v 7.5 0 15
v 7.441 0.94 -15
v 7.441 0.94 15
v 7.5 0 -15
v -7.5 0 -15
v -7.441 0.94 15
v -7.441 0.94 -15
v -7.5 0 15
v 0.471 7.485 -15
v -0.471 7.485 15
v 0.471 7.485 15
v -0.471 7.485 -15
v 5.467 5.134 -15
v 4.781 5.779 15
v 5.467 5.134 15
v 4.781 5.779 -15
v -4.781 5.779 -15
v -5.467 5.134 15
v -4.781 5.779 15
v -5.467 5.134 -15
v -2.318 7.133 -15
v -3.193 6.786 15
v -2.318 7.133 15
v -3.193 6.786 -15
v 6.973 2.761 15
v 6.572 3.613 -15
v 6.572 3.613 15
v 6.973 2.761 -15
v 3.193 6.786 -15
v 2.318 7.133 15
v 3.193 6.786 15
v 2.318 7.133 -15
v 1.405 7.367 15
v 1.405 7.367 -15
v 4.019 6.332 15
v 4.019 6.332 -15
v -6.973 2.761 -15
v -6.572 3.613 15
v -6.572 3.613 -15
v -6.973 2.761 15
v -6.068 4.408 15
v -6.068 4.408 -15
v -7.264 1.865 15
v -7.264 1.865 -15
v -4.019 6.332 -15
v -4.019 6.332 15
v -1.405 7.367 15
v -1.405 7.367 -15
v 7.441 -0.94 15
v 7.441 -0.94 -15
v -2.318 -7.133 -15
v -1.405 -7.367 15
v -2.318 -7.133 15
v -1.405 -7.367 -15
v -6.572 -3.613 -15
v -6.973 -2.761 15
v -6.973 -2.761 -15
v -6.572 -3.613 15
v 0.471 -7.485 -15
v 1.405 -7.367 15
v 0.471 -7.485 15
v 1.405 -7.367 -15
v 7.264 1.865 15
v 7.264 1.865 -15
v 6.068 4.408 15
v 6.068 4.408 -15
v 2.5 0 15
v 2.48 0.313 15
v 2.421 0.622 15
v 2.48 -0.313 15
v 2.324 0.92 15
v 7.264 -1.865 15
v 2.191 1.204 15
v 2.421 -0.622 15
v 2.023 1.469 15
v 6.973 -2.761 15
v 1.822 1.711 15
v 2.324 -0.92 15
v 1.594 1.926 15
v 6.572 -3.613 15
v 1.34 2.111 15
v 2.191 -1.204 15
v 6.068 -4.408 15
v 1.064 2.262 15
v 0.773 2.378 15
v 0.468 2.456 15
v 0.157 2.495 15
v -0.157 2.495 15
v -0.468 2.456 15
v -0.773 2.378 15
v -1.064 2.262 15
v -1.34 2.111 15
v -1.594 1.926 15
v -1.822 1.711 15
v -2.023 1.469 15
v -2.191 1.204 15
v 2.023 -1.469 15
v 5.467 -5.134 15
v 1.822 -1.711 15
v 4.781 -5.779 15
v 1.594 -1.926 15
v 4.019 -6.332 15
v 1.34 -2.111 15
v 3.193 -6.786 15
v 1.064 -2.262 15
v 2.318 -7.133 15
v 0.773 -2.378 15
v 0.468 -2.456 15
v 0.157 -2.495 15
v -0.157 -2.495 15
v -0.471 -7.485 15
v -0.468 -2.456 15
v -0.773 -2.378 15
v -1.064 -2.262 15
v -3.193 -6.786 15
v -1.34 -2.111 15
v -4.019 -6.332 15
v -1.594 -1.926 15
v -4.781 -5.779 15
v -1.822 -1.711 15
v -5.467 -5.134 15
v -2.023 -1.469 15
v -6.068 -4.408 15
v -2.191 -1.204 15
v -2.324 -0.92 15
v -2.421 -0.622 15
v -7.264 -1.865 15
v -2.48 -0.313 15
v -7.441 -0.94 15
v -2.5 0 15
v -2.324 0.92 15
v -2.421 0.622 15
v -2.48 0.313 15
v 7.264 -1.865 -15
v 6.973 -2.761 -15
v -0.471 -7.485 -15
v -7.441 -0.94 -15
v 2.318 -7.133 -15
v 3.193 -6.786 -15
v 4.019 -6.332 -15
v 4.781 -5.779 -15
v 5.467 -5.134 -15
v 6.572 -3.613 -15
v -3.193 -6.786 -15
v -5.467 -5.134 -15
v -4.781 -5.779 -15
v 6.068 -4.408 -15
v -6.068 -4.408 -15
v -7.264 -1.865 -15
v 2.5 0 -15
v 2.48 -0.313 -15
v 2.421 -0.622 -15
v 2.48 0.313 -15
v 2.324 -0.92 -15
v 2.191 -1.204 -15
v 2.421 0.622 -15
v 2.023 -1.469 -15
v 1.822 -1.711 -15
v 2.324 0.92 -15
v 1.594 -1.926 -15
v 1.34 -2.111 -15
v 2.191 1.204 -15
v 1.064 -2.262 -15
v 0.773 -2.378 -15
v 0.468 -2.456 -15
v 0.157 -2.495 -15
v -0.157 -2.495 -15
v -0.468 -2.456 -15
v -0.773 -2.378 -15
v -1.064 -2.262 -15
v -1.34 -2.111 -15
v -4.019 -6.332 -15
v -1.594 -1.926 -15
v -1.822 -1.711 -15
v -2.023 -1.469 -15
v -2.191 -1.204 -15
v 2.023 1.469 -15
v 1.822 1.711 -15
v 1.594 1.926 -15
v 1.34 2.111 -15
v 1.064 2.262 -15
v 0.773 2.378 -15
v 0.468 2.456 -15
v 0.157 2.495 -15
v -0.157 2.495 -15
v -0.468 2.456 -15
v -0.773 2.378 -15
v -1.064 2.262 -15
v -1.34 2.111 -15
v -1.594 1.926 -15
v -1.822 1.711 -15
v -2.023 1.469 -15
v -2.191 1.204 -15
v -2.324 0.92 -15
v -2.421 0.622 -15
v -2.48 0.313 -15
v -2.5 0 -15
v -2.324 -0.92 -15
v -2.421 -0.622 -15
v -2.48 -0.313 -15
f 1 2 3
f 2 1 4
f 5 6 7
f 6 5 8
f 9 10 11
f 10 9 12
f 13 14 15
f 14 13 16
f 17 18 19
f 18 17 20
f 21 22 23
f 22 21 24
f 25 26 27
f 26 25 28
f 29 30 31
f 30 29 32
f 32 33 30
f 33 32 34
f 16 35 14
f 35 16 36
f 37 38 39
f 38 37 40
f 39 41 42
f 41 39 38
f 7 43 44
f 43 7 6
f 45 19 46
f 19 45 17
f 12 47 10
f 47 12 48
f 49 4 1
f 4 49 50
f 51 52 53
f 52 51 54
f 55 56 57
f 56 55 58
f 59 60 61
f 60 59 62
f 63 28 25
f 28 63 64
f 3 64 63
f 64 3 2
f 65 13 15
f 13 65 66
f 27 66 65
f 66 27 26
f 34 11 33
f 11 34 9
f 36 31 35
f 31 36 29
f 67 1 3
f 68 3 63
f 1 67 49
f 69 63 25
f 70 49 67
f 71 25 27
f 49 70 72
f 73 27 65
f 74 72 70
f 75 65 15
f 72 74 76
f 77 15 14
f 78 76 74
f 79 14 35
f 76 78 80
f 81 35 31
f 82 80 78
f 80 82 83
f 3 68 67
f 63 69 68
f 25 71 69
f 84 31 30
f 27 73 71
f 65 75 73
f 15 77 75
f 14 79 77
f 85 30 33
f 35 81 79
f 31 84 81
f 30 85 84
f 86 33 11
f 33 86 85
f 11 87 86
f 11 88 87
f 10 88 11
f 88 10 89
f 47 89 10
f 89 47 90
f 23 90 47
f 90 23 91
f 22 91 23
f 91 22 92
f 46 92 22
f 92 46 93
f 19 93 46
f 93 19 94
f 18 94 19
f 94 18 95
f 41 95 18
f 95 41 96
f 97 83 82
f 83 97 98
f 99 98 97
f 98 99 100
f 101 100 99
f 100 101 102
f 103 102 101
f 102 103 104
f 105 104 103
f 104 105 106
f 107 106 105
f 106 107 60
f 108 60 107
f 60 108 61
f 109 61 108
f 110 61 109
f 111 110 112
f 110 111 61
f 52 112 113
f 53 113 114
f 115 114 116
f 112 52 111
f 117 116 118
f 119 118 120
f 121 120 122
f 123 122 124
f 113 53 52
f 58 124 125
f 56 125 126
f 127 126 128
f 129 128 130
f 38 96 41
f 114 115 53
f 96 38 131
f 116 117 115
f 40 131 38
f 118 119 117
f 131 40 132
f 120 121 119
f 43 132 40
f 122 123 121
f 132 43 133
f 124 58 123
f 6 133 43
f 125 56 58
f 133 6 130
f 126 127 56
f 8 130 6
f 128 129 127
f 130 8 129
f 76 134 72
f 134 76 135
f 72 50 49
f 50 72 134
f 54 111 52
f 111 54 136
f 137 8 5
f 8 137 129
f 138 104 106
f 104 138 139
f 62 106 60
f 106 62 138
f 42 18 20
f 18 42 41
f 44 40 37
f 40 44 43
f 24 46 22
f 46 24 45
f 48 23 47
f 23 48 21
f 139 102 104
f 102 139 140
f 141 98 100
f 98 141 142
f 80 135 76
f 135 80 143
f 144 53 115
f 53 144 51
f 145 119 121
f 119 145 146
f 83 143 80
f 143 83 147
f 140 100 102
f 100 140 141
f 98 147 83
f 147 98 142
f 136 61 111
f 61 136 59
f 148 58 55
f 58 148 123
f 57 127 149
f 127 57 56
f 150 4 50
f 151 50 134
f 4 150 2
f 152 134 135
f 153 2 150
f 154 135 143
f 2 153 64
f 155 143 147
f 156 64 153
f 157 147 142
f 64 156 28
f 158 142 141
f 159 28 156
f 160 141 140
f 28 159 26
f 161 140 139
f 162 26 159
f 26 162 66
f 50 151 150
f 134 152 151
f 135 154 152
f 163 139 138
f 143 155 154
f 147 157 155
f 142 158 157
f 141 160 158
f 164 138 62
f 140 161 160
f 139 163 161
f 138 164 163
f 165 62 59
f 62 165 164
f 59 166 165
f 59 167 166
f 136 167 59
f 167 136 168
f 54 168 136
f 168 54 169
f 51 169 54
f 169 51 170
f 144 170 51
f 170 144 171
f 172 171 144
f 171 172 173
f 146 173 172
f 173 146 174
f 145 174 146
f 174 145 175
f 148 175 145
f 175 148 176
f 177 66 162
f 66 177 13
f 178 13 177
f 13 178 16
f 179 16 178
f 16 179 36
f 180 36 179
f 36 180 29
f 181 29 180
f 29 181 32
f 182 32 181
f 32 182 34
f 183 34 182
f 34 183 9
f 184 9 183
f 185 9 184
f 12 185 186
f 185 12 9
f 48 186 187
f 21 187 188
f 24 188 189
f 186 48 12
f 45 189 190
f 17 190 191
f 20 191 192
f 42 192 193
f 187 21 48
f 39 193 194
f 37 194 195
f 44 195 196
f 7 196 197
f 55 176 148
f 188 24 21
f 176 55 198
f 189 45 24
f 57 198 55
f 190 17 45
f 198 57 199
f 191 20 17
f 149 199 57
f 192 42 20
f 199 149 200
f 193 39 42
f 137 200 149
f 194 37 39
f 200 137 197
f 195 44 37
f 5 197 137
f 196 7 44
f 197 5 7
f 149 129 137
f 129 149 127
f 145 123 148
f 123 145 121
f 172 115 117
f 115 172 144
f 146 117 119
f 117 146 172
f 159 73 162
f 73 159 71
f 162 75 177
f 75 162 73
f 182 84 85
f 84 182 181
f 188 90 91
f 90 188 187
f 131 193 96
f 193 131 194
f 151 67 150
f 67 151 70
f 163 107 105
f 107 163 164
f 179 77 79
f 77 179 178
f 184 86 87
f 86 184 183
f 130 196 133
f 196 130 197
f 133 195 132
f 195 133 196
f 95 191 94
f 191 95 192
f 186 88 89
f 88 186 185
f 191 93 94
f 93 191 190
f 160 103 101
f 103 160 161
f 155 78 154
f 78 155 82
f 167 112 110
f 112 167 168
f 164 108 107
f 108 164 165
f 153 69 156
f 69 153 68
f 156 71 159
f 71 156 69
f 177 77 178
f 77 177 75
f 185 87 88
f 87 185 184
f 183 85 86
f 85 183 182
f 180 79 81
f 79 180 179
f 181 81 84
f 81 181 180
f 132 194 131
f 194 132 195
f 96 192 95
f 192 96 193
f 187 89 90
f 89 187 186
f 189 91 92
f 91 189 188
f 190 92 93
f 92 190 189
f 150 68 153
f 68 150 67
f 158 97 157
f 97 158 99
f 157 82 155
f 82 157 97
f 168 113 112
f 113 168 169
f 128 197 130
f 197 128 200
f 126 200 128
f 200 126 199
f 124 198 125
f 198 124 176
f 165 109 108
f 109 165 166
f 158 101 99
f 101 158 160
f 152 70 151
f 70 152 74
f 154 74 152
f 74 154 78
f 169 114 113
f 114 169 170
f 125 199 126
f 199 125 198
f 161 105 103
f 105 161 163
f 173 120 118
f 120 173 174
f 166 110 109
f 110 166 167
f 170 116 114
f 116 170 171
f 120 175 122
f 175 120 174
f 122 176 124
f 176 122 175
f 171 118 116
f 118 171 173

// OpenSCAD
$fn = 50;


difference() {
	union() {
		translate(v = [0, 0, -15.0000000000]) {
			cylinder(h = 30, r = 7.5000000000);
		}
	}
	union() {
		translate(v = [0, 0, -100.0000000000]) {
			cylinder(h = 200, r = 2.5000000000);
		}
	}
}
